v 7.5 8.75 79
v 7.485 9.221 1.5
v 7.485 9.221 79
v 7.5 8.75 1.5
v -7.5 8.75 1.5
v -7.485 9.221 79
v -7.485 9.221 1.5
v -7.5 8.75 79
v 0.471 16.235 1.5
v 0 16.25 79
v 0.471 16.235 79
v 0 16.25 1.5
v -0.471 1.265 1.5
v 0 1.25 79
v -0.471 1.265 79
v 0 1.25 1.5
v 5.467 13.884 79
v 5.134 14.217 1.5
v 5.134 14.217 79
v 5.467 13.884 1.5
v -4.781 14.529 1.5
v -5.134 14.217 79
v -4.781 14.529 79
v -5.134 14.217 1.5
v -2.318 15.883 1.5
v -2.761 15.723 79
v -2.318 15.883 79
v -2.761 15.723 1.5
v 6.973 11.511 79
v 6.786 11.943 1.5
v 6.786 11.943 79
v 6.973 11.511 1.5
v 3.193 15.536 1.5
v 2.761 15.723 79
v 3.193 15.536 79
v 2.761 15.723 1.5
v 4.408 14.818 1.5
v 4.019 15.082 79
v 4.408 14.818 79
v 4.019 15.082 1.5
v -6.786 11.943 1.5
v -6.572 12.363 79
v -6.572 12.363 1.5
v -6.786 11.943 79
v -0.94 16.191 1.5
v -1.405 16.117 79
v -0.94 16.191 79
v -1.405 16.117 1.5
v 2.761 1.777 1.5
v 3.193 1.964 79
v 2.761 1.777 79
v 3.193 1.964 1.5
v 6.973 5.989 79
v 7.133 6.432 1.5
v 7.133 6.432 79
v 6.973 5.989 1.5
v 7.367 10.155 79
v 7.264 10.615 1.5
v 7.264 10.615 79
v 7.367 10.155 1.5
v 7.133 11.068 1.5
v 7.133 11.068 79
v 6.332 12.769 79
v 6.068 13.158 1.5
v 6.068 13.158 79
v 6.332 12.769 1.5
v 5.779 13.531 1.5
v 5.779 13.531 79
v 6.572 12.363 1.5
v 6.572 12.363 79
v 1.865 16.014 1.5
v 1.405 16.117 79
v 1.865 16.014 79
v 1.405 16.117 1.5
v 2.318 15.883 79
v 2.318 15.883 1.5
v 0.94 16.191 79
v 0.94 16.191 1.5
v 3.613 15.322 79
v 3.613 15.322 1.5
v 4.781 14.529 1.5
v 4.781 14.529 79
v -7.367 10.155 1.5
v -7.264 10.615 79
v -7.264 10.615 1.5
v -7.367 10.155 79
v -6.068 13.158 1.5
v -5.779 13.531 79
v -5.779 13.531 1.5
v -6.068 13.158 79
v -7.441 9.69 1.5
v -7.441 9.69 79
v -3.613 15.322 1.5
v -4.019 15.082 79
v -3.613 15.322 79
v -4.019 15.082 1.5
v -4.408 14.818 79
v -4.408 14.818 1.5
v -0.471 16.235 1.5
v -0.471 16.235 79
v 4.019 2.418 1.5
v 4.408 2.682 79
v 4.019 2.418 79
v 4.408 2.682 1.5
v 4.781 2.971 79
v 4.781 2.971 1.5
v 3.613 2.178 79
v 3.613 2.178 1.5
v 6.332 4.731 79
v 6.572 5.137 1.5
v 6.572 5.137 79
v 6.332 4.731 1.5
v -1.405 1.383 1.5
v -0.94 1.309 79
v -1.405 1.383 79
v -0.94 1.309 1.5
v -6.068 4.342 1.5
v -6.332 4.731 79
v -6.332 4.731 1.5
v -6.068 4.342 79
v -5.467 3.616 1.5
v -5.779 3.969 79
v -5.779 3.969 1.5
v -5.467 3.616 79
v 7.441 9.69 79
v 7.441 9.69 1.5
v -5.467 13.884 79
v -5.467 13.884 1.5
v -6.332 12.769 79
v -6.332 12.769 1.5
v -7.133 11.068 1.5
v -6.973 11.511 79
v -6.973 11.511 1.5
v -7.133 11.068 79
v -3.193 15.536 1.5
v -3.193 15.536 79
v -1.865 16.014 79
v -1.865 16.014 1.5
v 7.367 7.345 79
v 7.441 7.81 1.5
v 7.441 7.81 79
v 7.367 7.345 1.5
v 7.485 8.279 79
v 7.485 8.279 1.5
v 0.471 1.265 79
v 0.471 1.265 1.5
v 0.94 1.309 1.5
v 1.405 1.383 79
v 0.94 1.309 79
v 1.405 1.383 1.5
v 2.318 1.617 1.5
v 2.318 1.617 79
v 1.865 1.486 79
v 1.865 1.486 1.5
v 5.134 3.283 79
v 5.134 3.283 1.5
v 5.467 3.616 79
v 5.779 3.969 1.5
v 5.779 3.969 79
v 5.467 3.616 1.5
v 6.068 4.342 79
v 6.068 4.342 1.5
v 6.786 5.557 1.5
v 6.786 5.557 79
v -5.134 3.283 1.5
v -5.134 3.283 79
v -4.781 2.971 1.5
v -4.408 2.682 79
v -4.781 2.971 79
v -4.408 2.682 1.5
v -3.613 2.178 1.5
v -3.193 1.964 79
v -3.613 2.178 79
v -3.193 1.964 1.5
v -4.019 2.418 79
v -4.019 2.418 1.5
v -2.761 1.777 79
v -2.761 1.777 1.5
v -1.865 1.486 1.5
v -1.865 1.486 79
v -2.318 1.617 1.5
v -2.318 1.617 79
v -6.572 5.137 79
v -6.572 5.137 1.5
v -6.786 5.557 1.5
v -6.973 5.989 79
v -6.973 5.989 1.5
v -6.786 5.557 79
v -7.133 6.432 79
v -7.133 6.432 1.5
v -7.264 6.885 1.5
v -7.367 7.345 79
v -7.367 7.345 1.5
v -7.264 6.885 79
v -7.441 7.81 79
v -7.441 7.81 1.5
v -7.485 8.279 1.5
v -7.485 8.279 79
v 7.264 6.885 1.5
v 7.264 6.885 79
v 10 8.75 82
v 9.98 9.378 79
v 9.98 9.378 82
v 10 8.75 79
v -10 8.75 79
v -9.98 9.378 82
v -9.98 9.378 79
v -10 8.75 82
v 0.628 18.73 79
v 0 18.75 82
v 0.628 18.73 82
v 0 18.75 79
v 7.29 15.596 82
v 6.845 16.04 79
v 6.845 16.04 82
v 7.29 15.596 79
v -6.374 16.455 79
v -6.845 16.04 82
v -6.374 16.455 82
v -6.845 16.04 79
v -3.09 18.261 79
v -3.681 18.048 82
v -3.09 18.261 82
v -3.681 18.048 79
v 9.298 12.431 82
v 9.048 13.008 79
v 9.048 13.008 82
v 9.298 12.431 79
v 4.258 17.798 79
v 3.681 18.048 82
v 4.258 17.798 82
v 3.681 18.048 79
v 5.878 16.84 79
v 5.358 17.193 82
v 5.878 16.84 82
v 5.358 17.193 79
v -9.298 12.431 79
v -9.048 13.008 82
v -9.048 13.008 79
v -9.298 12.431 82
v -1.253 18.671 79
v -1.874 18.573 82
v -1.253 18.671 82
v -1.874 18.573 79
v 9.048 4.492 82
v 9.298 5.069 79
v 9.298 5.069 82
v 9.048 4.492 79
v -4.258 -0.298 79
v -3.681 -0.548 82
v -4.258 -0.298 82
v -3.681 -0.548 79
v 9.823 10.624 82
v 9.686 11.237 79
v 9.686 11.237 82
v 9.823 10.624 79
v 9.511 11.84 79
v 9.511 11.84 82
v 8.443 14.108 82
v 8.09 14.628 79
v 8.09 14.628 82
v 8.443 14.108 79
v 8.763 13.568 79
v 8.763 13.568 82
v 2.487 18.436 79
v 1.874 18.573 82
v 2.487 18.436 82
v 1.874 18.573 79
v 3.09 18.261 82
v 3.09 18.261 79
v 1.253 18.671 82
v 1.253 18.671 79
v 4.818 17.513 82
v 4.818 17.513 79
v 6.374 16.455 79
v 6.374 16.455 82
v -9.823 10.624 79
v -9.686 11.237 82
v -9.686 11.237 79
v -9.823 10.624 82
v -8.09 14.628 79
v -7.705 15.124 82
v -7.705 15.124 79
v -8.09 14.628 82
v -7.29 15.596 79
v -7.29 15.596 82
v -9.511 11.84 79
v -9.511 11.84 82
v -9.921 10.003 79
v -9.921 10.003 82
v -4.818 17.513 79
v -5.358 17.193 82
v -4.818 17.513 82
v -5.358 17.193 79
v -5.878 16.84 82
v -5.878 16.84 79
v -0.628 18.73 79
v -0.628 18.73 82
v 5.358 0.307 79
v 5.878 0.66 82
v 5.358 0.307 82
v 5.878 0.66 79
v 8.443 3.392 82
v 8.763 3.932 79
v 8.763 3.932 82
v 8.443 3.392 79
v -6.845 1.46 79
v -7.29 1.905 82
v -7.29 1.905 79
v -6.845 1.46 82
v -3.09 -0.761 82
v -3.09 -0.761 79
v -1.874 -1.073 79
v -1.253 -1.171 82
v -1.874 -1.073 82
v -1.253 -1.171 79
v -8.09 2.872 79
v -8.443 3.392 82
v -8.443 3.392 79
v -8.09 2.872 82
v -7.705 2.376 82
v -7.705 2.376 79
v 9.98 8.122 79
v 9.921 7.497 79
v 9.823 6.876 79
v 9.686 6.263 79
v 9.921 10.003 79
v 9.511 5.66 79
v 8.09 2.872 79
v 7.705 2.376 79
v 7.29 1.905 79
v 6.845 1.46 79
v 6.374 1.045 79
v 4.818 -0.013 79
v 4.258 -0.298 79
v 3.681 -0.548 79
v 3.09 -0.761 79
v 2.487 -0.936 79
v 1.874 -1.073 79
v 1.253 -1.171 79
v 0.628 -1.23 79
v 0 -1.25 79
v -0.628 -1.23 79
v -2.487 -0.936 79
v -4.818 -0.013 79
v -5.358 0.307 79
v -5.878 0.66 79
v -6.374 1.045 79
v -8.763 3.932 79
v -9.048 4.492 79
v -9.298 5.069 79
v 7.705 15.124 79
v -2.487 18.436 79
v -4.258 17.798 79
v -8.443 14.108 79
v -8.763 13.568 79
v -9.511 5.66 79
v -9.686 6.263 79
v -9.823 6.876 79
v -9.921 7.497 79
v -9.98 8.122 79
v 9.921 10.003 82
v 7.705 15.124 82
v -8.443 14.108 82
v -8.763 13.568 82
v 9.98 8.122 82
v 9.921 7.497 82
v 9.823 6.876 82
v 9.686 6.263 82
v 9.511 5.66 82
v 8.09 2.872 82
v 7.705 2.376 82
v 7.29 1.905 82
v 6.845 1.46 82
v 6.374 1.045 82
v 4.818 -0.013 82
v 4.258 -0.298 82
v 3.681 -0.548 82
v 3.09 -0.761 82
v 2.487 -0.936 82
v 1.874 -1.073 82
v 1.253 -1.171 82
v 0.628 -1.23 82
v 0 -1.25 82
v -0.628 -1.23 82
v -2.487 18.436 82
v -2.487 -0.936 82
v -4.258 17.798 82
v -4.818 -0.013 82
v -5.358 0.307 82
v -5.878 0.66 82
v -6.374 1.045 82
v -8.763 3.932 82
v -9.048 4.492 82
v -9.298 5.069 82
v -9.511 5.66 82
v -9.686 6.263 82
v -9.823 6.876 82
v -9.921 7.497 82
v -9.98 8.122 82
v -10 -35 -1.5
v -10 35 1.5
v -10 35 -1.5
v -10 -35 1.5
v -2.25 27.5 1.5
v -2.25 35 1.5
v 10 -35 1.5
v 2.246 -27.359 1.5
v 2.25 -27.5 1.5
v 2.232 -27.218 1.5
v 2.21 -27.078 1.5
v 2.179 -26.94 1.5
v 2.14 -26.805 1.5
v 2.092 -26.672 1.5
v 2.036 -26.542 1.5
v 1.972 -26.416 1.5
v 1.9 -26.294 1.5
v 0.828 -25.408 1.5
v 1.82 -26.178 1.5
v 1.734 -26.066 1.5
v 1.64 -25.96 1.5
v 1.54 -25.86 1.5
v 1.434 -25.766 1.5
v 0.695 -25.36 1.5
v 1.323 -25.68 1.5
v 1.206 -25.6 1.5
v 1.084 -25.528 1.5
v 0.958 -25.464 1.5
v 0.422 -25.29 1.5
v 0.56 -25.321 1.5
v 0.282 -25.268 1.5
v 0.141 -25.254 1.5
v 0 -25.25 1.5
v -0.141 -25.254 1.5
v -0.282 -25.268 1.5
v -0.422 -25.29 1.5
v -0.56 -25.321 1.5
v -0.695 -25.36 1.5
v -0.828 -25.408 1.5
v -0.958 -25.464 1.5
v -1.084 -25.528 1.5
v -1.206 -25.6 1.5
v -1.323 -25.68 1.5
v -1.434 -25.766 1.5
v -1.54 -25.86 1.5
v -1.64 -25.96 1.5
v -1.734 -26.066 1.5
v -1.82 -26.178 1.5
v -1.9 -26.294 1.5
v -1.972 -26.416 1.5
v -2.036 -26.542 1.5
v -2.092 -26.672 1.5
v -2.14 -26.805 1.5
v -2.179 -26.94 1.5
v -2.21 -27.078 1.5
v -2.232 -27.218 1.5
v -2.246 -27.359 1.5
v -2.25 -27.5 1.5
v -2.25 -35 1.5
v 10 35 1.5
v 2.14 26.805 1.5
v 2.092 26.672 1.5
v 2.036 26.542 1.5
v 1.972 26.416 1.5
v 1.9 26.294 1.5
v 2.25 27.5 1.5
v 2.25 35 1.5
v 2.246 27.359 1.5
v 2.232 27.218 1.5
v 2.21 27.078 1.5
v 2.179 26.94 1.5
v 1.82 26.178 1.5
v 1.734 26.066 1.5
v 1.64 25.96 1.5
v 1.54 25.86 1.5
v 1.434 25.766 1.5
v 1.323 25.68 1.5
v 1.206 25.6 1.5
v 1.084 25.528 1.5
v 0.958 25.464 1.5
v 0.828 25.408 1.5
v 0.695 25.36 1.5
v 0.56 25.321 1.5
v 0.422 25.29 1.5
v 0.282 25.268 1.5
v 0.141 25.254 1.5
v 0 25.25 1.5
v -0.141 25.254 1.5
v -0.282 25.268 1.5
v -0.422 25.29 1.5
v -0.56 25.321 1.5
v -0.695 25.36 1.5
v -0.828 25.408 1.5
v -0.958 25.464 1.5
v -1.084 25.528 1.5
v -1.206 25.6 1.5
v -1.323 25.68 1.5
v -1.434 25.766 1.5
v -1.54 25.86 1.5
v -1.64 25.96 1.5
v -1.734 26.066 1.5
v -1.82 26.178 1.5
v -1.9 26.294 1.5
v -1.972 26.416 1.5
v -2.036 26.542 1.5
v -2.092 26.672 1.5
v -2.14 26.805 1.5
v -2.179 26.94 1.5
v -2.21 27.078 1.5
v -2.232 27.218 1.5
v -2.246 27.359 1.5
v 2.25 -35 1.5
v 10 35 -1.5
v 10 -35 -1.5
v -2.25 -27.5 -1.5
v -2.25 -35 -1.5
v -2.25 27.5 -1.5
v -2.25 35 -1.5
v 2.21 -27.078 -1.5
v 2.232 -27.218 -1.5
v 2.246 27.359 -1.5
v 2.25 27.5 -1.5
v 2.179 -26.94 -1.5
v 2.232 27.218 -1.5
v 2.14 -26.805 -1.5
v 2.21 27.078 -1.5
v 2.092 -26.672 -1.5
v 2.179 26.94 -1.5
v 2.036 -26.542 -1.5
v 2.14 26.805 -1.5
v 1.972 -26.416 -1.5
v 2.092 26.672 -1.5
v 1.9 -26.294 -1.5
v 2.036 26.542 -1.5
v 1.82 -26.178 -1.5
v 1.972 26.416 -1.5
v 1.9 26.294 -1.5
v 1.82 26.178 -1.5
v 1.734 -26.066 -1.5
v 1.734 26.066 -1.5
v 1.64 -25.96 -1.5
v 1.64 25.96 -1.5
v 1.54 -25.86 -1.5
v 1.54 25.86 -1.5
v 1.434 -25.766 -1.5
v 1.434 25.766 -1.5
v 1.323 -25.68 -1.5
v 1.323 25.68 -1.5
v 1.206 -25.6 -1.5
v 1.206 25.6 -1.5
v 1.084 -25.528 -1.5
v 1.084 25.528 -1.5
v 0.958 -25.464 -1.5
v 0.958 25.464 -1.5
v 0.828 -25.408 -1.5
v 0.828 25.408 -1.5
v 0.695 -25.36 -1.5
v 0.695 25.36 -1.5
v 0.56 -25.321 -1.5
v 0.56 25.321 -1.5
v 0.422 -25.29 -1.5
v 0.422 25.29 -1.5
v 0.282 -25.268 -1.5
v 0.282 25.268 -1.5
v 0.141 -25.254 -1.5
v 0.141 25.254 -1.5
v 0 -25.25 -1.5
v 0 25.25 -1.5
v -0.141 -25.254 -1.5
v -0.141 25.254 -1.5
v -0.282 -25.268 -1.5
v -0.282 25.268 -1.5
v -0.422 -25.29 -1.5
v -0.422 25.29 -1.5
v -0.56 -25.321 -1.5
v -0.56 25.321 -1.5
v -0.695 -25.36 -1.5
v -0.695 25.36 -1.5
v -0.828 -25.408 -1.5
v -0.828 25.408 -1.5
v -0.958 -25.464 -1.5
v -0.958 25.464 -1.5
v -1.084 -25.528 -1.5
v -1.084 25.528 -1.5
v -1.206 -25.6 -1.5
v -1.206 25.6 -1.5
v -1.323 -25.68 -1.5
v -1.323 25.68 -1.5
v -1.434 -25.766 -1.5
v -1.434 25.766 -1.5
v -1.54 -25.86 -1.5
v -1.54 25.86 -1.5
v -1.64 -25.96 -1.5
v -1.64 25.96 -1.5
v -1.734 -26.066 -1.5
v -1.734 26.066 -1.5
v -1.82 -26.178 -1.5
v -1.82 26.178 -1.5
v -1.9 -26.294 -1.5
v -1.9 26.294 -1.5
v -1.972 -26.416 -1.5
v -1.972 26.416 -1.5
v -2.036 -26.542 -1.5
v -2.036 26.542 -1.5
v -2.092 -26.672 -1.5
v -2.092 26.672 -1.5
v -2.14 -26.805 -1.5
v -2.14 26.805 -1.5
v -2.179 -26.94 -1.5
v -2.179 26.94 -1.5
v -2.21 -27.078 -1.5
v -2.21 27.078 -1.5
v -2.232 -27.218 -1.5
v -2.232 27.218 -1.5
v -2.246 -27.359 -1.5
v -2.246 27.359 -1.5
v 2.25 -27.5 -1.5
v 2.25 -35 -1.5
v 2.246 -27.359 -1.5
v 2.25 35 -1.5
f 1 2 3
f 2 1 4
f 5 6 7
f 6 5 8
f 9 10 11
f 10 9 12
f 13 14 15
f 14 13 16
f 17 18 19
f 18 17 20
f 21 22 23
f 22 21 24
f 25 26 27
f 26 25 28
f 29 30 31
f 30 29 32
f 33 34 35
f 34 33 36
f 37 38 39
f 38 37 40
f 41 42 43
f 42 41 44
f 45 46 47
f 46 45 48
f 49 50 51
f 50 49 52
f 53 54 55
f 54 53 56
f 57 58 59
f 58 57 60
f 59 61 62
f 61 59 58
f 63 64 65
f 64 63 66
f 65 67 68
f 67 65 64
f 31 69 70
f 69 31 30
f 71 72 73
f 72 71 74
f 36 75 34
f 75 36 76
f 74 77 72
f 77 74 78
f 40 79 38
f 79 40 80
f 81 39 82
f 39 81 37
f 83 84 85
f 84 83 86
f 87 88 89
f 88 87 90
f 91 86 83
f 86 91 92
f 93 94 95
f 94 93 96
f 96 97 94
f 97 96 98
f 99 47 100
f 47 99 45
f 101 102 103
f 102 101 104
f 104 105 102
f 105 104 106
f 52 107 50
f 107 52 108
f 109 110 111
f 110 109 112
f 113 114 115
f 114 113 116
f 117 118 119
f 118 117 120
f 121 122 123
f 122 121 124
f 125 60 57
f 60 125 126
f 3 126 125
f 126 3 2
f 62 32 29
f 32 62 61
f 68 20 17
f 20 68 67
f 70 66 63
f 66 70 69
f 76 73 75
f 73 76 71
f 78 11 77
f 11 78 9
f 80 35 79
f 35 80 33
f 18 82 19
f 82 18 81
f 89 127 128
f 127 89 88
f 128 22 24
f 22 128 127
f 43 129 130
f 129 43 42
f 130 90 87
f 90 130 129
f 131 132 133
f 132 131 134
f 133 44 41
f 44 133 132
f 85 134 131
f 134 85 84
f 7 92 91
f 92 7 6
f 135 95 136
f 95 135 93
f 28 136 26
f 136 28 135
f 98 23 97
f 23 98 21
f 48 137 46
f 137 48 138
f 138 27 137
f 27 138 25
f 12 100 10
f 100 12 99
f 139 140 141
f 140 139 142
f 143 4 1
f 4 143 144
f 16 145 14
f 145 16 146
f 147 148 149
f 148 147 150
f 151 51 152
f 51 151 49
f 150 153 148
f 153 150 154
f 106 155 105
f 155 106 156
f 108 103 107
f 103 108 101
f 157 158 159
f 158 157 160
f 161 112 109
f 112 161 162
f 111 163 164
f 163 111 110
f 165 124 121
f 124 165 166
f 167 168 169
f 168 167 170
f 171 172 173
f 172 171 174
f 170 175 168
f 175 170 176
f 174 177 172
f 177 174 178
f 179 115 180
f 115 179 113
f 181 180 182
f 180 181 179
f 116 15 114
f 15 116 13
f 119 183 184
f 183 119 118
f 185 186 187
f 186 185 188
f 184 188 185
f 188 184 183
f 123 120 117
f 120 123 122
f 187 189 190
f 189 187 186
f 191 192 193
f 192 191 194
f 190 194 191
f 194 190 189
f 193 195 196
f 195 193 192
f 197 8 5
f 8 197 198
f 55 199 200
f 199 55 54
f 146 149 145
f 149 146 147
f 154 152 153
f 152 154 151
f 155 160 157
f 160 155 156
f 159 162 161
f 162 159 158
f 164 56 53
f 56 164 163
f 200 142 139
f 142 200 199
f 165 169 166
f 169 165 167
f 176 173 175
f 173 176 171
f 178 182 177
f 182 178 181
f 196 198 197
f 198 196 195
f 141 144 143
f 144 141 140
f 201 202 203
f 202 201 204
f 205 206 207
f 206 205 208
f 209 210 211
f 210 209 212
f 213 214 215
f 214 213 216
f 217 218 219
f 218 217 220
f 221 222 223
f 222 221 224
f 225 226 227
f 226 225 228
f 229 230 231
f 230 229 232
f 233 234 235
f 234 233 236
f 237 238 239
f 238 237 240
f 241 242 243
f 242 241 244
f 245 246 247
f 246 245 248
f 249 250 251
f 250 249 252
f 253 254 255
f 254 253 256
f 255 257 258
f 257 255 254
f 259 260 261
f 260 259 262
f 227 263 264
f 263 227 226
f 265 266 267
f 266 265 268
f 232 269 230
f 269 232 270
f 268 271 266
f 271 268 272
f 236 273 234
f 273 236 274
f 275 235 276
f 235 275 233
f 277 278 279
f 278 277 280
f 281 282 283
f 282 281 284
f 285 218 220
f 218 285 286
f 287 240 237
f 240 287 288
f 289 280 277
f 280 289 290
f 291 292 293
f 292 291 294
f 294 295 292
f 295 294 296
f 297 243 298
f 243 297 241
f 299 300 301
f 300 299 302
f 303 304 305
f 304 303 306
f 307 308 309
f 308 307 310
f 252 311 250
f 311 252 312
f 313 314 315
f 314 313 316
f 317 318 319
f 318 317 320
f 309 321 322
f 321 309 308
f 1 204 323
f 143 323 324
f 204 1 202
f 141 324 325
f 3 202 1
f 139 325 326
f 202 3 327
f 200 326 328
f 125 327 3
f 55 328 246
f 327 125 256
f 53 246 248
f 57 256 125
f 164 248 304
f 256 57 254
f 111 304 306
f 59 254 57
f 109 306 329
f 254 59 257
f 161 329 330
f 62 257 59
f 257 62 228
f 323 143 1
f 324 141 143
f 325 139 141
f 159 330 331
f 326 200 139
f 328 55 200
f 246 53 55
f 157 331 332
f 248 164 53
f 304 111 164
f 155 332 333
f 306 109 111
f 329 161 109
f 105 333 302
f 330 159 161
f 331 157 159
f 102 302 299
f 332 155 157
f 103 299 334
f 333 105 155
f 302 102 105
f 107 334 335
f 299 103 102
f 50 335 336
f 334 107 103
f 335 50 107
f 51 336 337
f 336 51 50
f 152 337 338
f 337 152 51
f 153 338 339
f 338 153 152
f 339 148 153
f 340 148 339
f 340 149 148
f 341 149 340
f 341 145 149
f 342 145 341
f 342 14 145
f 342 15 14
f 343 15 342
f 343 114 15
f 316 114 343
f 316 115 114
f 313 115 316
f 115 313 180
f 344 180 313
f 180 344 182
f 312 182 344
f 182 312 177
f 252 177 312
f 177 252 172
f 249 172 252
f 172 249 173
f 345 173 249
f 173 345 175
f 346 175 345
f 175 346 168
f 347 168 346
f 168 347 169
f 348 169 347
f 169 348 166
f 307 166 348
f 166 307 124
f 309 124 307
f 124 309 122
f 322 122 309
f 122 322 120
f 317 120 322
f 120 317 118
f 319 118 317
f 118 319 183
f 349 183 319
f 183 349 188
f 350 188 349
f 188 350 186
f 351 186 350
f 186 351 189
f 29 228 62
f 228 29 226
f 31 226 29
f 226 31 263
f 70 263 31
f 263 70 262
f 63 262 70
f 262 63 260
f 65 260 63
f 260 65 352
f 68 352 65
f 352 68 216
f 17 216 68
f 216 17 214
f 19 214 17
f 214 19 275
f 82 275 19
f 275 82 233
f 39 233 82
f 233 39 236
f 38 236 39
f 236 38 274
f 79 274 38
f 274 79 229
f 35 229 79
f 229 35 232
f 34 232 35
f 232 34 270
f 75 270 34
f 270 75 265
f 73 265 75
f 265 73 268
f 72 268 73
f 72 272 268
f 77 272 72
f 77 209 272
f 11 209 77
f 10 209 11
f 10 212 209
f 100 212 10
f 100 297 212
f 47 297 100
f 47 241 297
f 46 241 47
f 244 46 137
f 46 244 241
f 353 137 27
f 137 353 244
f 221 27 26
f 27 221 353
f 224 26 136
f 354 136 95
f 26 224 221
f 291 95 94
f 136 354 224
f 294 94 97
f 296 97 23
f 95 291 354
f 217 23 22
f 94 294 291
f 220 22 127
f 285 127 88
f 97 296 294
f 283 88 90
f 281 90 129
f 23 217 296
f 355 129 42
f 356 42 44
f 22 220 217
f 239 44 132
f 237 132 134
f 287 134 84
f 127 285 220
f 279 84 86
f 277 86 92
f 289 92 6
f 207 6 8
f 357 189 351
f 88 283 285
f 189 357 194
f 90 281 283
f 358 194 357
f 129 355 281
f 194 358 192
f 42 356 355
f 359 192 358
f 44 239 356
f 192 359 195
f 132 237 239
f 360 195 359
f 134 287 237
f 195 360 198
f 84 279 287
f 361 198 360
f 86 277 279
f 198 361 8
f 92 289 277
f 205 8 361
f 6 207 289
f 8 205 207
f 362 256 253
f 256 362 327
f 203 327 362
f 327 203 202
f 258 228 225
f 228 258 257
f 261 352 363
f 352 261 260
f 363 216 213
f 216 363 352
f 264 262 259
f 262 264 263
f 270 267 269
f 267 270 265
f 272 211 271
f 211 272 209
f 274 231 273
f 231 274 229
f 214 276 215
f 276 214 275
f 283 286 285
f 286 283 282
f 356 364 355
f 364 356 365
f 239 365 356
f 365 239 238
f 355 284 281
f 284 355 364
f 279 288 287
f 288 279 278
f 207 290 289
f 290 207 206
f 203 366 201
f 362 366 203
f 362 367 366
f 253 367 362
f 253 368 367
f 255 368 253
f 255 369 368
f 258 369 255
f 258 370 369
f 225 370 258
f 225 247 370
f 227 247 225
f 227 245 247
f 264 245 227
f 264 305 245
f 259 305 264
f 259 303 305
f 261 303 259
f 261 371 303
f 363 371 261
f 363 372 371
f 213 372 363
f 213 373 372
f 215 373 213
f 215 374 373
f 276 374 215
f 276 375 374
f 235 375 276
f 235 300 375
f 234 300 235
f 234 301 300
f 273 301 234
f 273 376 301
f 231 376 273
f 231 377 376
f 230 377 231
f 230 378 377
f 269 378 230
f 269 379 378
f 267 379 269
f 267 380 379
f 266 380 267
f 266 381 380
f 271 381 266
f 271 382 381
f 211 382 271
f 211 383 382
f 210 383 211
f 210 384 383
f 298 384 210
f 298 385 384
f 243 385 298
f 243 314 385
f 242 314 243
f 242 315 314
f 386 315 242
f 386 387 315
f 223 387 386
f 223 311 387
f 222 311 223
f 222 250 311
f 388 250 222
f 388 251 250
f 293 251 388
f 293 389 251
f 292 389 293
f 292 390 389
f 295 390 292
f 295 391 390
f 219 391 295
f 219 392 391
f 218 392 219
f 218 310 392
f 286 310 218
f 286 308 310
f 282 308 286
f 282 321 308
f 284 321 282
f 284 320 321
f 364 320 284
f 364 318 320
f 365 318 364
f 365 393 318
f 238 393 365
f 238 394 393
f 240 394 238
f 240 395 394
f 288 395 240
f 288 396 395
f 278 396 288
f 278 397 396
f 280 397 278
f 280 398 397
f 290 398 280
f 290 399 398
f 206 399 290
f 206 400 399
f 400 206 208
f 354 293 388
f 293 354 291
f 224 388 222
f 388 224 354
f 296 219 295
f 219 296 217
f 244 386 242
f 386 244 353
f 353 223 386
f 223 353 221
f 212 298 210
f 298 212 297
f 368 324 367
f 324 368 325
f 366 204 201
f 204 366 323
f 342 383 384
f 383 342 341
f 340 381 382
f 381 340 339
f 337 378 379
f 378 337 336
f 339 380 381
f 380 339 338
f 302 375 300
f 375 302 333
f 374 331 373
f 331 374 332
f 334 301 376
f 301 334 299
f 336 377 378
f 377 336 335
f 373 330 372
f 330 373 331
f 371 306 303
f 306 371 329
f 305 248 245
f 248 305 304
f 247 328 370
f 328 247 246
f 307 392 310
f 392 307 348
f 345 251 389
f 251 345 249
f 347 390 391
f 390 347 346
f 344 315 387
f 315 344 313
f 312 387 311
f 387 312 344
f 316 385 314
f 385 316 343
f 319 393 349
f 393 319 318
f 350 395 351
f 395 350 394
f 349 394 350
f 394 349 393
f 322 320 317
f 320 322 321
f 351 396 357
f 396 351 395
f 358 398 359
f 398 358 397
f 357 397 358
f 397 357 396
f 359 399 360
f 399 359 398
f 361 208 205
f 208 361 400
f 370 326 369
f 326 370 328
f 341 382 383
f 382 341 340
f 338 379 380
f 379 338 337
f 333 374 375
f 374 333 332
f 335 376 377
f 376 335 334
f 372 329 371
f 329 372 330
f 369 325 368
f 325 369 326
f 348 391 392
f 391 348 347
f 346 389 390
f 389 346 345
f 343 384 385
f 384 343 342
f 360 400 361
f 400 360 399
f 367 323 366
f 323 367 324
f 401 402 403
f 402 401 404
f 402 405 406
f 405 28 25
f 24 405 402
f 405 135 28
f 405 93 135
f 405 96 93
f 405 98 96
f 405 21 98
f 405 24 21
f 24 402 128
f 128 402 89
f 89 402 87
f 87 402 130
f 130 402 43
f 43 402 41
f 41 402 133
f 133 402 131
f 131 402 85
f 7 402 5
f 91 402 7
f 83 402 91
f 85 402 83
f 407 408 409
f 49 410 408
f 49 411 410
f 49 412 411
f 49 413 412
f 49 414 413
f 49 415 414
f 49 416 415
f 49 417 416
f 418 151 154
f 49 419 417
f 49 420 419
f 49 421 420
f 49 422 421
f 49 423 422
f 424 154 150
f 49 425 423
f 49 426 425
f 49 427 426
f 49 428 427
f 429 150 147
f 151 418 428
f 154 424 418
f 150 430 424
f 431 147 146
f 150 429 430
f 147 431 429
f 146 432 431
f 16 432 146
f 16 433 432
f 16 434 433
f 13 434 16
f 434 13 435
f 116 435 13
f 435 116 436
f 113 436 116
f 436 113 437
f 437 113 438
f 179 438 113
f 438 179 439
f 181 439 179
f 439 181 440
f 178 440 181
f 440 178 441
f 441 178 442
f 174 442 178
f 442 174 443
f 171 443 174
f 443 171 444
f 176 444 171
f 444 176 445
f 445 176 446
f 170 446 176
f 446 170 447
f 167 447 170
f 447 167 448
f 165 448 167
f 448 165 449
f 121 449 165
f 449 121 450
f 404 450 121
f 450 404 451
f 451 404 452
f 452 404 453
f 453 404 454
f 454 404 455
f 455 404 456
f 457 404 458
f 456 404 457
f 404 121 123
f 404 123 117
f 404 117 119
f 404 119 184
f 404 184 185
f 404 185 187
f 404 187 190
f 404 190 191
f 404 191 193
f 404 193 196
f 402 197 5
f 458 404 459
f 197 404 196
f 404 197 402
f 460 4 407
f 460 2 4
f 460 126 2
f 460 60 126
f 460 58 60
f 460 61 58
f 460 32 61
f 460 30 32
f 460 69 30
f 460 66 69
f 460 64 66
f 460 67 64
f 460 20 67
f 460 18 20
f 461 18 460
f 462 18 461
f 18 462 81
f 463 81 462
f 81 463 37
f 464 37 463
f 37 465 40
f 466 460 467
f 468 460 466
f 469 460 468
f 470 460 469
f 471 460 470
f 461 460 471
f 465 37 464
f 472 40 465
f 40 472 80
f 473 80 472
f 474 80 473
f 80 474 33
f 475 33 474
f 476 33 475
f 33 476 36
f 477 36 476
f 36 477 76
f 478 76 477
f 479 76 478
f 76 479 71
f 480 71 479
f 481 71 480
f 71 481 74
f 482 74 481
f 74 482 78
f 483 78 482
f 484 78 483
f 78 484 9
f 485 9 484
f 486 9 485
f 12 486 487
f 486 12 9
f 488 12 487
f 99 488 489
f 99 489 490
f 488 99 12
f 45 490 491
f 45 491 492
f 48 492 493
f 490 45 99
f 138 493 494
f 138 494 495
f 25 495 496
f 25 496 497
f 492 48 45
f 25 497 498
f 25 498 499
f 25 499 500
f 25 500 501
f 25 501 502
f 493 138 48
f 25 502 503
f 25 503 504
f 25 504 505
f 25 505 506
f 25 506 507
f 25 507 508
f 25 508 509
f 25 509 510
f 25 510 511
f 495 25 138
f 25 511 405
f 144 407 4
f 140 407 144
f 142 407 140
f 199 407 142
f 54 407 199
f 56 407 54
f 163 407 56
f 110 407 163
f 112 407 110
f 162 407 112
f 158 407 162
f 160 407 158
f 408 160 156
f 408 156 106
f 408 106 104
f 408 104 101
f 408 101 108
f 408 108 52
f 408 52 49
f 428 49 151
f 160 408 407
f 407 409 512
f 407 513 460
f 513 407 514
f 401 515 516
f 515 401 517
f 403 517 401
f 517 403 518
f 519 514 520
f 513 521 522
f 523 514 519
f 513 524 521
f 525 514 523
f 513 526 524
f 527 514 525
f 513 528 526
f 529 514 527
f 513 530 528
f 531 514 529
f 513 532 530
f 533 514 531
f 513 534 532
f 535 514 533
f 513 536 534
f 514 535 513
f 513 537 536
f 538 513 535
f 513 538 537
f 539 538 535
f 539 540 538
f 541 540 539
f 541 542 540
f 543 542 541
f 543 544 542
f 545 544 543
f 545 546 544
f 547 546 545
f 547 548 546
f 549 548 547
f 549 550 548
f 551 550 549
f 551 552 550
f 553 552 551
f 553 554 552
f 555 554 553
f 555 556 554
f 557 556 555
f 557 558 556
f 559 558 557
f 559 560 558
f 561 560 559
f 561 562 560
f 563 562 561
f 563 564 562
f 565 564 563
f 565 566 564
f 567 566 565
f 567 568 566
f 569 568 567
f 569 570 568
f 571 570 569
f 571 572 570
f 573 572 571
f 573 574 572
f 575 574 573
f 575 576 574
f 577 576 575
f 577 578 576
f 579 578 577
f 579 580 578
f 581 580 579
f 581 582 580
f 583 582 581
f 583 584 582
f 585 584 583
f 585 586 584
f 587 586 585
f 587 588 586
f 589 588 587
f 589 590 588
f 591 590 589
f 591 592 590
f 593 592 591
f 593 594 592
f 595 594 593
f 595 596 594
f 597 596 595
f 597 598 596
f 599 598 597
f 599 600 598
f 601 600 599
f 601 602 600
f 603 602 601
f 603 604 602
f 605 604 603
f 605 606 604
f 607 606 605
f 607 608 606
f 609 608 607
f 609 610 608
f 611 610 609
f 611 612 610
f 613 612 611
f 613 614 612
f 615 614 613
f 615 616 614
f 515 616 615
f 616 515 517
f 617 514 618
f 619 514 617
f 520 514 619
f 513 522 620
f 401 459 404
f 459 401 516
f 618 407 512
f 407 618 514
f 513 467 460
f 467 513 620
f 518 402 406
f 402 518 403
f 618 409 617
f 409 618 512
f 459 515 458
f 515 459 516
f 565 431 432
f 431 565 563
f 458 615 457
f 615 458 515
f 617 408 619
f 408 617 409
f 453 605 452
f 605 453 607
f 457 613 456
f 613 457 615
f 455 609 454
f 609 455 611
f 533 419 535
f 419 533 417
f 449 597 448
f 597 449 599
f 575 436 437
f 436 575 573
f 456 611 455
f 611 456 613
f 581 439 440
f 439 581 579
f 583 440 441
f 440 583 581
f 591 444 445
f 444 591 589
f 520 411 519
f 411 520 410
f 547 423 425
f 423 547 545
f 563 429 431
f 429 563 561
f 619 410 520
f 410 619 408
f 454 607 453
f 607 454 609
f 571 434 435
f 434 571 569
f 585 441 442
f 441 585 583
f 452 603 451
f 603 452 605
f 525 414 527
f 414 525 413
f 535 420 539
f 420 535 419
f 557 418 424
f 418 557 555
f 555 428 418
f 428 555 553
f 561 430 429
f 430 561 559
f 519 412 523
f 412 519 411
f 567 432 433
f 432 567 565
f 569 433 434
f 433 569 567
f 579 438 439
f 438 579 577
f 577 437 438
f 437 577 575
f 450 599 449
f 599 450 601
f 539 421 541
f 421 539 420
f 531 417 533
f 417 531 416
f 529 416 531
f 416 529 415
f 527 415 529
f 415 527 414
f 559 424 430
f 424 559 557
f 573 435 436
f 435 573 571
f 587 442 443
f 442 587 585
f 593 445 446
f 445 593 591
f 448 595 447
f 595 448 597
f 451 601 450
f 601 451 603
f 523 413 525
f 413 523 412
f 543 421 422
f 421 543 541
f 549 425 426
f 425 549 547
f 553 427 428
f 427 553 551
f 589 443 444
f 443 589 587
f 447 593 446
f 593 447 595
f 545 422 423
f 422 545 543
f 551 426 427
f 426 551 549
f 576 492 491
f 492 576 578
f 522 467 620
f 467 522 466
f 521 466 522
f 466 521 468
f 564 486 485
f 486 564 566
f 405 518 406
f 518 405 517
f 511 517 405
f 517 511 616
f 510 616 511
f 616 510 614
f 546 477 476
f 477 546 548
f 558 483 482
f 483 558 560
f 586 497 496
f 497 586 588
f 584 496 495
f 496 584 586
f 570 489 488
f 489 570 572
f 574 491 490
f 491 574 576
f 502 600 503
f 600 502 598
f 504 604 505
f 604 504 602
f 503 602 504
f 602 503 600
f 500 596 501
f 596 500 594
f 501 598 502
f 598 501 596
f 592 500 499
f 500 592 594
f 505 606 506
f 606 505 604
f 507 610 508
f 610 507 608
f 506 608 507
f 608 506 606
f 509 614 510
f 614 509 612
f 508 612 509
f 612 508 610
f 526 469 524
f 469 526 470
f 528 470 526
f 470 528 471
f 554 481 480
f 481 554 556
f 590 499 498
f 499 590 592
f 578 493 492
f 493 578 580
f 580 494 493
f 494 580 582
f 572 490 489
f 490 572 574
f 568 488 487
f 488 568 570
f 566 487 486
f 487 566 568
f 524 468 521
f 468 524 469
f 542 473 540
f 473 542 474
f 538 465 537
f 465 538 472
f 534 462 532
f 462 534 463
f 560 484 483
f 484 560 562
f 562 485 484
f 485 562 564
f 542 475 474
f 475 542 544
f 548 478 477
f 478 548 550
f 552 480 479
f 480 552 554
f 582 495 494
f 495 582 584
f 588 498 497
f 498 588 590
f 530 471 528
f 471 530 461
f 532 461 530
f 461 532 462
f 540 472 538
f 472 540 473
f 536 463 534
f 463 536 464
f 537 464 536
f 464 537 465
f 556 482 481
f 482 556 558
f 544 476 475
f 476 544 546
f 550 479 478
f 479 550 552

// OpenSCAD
$fn = 100;

slotWidth = 5;
slotDepth = 4;

baseWidth = 20;
baseLength = 70;
baseHeight = 3;

sideGap = 10;

armLength = 80;
armDia = 15;


holder();

module holder(){
    
    difference(){
        
        union(){
            base();
            
            translate([0,baseLength/8])
            arm();
        }
        
        translate([0,-baseLength/2-7.5,0])
        screwHole();
        
        translate([0,baseLength/2-7.5,0])
        screwHole();
        
    }
    
}

module base(){
    
    union(){
        cube([baseWidth, baseLength, baseHeight], center = true);
        
        *translate([0,0,-baseHeight + 0.1])
        cube([slotWidth, baseLength - 2 * sideGap, slotDepth], center = true);
        
        
        
    }
    
    
}


module arm(){
    
    union(){
        cylinder(d = armDia, h = armLength);
        
        translate([0,0,armLength-1])
        cylinder(d = armDia+5, h = 3);
    }
    
}

module screwHole(){
    
    translate([0,0,-10])
    hull(){
        
        cylinder(d = 4.5, h = 20);
        
        translate([0,15,0])
        cylinder(d = 4.5, h = 20);
        
    }
    
}
